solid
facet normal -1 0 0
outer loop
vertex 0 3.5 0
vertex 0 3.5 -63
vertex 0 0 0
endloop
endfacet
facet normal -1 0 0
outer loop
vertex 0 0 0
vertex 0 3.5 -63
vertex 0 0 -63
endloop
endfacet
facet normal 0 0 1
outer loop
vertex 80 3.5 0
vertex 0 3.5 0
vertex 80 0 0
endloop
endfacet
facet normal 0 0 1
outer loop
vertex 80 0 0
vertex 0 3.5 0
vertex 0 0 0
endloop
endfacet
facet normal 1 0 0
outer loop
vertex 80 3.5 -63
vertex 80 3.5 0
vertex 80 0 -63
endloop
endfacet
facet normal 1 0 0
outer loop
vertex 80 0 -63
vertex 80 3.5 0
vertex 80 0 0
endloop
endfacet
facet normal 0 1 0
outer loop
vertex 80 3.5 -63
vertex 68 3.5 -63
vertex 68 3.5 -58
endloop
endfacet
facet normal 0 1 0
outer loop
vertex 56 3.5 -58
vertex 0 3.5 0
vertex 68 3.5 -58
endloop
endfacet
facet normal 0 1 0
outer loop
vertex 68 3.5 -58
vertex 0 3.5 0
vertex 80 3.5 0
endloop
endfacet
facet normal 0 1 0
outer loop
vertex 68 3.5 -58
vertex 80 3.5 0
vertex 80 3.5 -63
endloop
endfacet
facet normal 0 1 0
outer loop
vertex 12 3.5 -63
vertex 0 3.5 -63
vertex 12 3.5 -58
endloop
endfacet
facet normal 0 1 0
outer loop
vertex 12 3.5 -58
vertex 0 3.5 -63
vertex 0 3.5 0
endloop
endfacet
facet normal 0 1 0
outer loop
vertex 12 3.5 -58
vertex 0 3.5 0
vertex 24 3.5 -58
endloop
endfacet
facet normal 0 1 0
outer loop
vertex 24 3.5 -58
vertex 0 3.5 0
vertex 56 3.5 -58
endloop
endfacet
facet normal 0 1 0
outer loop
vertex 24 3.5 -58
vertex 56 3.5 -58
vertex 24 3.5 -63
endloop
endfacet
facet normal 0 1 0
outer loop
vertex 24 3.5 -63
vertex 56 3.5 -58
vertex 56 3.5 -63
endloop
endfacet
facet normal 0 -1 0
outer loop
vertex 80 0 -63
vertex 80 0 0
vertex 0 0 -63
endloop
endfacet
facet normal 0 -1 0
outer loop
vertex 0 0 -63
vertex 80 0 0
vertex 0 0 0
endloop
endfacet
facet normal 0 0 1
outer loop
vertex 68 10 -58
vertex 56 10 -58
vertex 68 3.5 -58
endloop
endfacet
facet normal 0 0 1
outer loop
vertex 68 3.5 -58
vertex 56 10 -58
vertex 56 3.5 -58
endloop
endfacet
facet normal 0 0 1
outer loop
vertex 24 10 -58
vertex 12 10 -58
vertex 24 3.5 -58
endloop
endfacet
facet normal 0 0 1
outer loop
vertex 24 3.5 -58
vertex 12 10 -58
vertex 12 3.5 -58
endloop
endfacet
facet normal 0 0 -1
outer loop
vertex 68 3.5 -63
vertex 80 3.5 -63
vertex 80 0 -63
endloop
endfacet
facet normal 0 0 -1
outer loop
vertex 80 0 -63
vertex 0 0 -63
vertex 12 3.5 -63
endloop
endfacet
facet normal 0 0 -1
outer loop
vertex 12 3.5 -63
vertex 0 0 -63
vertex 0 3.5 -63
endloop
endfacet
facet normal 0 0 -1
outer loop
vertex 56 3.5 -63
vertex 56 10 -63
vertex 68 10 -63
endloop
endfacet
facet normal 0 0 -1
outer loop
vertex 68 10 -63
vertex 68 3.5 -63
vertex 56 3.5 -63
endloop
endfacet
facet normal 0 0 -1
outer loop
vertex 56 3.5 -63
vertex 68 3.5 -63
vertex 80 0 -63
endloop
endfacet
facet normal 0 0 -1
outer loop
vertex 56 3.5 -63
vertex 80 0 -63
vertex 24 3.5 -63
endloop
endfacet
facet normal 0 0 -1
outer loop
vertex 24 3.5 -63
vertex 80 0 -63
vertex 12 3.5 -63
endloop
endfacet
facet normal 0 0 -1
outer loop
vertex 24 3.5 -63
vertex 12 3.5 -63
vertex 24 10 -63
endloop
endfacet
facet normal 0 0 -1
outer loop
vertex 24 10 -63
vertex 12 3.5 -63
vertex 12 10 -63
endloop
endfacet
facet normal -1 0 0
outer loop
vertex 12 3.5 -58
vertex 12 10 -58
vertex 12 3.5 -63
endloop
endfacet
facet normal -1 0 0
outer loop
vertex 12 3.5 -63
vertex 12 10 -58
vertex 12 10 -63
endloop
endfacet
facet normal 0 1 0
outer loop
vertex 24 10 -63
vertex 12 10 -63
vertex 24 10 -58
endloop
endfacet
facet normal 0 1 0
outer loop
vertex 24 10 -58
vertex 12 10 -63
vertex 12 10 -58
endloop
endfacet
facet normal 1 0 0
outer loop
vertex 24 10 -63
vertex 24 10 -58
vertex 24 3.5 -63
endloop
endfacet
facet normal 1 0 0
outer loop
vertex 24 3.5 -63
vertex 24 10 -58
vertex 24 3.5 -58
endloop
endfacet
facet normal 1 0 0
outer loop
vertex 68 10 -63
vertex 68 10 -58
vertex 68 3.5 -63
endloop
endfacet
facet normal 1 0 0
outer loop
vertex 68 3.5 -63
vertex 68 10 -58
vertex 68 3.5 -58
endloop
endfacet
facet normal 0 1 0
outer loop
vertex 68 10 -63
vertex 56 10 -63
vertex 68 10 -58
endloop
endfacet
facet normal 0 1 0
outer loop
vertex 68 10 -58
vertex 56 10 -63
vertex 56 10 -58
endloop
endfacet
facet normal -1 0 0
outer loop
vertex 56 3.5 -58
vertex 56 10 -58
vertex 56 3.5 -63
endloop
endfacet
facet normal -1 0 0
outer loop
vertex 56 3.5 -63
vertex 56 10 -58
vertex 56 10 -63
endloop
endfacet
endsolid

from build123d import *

# Parameters (mm, degrees)
SKETCH1_W           = 80
SKETCH1_H           = 58
BOSS_EXTRUDE1_DEPTH = 3.5
BOSS_EXTRUDE2_DEPTH = 5


with BuildPart() as part:
    # Sketch1 → Boss-Extrude1 (new body)
    with BuildSketch(Plane(origin=(0, 0, 0), x_dir=(1, 0, 0), z_dir=(0, 1, 0))):
        with Locations((40, 29)):
            Rectangle(SKETCH1_W, SKETCH1_H)
    extrude(amount=BOSS_EXTRUDE1_DEPTH)

    # Sketch2 → Boss-Extrude2 (add)
    with BuildSketch(Plane(origin=(0, 0, -58), x_dir=(-1, 0, 0), z_dir=(0, 0, -1))):
        Polygon((-68, 3.5), (-80, 3.5), (-80, 0), (0, 0), (0, 3.5), (-12, 3.5), (-12, 10), (-24, 10), (-24, 3.5), (-56, 3.5), (-56, 10), (-68, 10), align=None)
    extrude(amount=BOSS_EXTRUDE2_DEPTH)


solid = part.part
